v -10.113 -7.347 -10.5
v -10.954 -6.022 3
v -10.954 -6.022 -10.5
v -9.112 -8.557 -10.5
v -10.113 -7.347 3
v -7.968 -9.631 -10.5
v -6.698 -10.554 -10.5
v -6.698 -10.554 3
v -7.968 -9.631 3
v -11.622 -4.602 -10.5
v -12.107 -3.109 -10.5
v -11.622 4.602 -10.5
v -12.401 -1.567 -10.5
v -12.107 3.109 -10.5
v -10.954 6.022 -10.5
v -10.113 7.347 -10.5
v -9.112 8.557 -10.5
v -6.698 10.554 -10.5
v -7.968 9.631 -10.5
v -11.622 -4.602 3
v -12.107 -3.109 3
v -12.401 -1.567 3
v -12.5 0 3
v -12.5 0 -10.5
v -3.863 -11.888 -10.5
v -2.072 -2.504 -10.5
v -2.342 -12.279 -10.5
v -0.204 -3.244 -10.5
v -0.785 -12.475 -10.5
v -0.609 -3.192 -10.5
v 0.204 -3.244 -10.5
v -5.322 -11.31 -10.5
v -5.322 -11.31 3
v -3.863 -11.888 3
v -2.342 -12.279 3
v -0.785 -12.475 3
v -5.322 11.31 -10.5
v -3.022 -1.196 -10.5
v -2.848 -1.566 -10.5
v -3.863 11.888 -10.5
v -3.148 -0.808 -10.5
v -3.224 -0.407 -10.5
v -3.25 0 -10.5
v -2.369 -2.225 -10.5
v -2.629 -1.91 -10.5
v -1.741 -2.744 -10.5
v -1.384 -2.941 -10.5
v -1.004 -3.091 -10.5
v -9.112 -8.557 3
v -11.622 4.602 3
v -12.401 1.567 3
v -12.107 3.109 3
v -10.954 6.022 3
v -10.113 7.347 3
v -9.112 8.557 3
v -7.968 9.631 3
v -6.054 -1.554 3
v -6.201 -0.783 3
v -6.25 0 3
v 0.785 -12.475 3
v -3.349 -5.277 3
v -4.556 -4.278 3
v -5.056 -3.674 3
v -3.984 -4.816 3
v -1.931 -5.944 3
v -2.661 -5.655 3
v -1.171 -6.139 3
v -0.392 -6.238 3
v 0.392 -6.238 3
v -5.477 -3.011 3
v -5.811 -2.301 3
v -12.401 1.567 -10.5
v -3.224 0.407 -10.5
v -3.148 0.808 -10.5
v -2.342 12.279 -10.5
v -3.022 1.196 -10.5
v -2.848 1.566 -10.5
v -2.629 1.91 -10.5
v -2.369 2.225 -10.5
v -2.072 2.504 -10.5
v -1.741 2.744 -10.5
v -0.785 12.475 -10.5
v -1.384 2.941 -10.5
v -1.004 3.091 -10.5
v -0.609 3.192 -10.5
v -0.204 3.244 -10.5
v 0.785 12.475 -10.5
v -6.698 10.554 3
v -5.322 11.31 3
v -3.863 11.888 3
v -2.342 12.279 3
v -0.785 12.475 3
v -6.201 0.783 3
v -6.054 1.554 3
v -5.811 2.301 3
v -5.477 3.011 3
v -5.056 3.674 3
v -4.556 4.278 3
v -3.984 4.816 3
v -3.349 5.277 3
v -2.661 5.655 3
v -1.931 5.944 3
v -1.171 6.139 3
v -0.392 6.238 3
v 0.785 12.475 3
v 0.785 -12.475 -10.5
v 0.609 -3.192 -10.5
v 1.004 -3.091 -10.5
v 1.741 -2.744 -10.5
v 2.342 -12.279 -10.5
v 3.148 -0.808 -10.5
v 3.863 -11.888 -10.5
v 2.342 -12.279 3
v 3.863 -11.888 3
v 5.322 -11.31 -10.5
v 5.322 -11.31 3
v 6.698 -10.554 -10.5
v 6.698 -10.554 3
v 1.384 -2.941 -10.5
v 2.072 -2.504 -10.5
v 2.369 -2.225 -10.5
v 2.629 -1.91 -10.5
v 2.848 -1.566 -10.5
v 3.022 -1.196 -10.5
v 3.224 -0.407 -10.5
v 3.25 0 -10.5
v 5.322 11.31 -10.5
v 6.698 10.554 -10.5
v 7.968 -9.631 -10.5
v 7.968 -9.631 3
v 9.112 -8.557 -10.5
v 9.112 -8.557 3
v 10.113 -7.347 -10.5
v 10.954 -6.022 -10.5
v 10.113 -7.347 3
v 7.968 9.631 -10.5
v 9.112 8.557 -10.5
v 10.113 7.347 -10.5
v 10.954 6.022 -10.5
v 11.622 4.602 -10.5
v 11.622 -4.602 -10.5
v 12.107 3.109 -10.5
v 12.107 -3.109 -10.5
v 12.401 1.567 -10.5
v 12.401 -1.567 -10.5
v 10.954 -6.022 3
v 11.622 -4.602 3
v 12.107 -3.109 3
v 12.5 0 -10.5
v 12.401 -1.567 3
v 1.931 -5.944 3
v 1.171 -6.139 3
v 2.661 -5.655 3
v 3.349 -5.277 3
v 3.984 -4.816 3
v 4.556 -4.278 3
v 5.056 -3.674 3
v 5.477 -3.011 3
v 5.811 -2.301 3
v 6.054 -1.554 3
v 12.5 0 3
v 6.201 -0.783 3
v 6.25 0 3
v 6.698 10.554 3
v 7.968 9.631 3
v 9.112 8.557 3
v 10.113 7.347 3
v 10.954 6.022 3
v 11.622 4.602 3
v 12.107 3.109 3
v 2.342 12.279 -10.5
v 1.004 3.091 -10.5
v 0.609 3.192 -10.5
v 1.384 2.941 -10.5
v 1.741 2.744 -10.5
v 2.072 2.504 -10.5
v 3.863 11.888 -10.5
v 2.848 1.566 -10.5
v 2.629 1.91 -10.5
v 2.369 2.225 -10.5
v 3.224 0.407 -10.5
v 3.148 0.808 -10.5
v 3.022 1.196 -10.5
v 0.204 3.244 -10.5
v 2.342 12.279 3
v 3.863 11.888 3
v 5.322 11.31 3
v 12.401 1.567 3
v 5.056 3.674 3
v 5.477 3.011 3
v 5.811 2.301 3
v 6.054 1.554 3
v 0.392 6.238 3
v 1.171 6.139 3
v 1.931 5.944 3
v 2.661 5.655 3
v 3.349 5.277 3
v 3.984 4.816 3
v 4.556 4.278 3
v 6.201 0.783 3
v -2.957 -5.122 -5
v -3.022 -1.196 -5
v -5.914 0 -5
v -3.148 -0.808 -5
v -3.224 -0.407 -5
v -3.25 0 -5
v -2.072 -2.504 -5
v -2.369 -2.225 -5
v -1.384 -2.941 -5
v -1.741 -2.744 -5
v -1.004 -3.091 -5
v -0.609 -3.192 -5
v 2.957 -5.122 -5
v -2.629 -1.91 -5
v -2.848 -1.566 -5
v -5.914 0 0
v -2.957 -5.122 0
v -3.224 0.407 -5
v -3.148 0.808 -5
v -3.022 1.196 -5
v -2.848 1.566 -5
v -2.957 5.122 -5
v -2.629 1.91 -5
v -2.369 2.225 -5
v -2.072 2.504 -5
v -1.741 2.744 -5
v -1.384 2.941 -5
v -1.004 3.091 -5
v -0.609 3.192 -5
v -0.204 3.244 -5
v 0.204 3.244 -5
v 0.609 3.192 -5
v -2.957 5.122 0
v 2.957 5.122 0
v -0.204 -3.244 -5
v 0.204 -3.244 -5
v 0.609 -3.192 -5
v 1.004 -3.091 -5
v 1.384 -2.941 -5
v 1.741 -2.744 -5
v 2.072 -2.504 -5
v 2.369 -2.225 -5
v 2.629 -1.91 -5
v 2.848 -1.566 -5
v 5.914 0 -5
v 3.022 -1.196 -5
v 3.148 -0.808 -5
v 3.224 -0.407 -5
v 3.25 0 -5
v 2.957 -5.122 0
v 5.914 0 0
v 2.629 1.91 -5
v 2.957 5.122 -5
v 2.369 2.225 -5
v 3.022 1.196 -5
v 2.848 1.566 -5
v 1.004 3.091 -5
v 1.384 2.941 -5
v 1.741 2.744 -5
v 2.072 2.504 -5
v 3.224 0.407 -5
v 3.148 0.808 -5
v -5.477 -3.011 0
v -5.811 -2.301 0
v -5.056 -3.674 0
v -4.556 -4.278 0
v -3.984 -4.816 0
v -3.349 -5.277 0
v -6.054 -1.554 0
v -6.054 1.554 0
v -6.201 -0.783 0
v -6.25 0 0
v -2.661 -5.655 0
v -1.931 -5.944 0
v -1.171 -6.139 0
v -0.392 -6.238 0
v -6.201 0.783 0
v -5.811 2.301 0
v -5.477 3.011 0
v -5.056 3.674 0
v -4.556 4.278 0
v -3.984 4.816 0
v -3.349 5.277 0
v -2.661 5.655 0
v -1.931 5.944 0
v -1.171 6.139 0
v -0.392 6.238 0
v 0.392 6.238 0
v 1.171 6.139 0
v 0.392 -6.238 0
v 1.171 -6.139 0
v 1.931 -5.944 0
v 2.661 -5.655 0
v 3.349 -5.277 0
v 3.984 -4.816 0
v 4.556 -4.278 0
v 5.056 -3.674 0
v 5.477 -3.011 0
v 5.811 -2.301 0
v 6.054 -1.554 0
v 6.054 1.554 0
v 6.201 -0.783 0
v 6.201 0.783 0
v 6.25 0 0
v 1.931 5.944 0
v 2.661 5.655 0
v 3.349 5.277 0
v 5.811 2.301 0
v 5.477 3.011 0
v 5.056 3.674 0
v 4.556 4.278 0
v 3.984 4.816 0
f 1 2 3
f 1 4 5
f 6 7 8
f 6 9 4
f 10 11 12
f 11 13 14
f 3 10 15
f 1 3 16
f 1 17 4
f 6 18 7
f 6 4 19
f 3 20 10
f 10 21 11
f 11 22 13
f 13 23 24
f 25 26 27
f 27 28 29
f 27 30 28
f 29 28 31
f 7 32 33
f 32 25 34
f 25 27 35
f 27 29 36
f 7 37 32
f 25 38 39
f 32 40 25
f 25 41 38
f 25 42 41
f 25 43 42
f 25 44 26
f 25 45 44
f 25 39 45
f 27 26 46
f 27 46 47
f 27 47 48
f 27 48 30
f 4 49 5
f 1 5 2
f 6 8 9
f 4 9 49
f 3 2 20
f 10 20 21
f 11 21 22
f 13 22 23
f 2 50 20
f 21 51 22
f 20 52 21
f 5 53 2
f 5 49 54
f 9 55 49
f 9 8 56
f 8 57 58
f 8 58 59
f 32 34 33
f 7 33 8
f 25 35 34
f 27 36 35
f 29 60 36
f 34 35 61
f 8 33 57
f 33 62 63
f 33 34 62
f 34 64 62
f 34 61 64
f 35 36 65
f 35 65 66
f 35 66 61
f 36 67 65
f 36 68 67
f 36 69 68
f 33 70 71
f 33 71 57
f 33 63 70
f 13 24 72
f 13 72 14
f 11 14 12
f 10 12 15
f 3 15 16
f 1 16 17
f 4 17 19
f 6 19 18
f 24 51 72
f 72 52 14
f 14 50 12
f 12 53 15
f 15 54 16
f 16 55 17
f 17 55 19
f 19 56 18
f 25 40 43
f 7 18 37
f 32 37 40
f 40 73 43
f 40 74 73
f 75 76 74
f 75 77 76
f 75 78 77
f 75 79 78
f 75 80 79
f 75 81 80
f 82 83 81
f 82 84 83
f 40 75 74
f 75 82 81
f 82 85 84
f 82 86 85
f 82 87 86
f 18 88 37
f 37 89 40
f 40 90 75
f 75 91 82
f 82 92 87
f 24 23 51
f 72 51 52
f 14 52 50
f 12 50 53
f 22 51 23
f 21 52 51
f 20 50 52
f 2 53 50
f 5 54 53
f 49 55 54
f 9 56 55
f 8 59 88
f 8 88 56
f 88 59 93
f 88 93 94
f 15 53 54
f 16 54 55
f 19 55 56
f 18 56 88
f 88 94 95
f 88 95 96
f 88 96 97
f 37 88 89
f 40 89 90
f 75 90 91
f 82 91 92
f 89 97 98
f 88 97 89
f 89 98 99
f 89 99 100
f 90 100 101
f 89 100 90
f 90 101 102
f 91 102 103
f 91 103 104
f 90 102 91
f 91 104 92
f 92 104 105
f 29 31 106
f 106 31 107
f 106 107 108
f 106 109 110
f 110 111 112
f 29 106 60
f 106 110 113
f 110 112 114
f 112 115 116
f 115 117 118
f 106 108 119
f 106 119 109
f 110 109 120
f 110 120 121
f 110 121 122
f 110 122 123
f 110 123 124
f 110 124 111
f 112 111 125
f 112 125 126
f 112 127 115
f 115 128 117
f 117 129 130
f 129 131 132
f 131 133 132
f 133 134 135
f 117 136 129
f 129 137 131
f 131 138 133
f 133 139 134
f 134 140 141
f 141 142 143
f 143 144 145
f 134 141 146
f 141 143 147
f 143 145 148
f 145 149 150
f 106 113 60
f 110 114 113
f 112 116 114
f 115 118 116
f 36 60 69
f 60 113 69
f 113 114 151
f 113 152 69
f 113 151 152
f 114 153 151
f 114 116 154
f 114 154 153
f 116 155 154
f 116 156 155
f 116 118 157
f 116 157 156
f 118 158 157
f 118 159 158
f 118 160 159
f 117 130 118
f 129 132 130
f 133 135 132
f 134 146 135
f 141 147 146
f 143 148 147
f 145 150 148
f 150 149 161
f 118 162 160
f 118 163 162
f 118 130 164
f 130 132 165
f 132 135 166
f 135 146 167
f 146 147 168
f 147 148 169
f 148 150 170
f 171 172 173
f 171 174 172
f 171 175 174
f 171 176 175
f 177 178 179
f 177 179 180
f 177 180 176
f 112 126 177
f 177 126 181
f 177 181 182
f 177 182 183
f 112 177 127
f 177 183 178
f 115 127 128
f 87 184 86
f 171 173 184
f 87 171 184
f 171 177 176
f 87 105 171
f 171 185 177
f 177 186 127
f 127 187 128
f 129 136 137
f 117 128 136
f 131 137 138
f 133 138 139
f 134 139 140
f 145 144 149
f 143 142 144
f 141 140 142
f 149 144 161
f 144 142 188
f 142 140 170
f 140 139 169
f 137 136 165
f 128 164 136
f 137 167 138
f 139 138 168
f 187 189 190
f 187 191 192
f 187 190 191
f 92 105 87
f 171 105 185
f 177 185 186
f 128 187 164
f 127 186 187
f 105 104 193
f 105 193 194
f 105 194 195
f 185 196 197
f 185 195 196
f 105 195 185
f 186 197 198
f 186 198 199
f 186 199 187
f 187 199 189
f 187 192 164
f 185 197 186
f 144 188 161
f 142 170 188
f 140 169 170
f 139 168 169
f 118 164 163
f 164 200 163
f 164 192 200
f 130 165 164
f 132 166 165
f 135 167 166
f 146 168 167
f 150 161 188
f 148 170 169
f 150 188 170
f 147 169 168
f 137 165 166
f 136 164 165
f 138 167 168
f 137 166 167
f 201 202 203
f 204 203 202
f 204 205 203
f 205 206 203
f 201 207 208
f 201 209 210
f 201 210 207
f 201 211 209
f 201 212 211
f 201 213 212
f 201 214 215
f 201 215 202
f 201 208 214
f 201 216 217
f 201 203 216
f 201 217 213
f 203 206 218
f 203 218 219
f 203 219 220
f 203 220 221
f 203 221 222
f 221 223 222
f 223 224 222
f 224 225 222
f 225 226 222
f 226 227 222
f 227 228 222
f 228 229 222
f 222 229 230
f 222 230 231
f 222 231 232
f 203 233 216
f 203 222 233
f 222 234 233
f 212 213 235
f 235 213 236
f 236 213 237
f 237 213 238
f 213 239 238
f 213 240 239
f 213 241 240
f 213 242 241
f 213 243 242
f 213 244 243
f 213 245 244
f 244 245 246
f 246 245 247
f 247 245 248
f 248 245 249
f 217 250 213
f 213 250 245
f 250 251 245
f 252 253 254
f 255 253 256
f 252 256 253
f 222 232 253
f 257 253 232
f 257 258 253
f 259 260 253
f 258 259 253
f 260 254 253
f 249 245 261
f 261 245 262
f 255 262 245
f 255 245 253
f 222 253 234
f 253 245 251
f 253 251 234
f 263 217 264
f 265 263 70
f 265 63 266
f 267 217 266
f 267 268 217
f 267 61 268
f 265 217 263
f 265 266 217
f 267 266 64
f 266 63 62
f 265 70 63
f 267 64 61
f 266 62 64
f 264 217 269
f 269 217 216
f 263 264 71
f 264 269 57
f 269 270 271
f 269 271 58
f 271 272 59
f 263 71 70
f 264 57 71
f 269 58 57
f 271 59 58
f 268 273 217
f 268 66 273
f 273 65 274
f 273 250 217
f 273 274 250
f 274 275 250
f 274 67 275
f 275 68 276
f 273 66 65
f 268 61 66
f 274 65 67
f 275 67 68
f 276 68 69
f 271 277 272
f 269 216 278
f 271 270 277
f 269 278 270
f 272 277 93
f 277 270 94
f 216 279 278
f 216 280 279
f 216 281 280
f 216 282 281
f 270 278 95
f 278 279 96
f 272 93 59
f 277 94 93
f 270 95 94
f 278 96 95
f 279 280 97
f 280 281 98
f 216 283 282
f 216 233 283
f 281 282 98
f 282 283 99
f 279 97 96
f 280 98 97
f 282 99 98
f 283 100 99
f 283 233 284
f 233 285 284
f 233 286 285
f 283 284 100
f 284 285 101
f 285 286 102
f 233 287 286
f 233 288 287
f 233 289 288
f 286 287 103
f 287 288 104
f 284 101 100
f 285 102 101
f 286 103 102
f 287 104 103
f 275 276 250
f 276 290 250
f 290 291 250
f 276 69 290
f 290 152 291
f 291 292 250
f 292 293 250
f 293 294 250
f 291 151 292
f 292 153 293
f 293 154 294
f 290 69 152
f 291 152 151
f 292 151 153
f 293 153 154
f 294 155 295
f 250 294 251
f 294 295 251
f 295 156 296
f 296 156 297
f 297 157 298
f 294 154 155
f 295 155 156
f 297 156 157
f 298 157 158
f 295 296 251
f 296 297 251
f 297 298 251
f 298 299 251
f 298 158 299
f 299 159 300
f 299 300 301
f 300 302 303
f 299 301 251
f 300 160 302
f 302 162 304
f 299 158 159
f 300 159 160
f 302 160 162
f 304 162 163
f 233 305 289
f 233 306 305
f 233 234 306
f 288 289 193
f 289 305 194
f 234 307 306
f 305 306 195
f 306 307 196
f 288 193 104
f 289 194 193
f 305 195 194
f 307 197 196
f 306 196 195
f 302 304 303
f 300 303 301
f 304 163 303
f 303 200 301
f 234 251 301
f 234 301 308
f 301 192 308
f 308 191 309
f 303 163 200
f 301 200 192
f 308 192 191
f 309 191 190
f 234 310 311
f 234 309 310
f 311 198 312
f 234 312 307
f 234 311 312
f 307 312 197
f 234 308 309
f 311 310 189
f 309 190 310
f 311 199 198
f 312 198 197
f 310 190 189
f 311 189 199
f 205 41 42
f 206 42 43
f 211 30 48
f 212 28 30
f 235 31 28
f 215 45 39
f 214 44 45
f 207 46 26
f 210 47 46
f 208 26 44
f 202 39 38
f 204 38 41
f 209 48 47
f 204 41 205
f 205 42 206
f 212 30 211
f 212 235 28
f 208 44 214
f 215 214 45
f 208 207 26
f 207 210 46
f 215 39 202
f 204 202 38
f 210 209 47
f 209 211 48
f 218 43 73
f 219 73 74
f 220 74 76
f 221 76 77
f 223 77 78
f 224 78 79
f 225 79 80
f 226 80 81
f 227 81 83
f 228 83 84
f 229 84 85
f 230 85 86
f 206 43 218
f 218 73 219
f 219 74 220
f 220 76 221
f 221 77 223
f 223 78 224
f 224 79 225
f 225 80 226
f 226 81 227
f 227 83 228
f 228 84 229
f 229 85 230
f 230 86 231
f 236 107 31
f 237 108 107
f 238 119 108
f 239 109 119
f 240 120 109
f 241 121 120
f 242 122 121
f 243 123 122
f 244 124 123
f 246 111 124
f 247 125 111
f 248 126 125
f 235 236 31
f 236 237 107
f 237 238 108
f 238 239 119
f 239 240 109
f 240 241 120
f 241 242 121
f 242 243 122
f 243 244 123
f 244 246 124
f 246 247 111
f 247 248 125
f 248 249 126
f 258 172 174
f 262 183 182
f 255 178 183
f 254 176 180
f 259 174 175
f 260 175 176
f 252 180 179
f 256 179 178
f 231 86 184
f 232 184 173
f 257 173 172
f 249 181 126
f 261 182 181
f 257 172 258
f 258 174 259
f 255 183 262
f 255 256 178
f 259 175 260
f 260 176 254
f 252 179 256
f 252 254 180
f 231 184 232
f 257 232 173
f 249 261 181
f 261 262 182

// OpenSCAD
$fn = 50;


difference() {
	union() {
		translate(v = [0, 0, -10.5000000000]) {
			cylinder(h = 13.5000000000, r = 12.5000000000);
		}
		#translate(v = [0, 0, -12.0000000000]) {
			cylinder(h = 12, r = 2.8750000000);
		}
	}
	union() {
		translate(v = [0, 0, 0]) {
			rotate(a = [0, 0, 0]) {
				difference() {
					union() {
						translate(v = [0, 0, -5]) {
							linear_extrude(height = 5) {
								polygon(points = [[5.9142500000, 0.0000000000], [2.9571250000, 5.1218907443], [-2.9571250000, 5.1218907443], [-5.9142500000, 0.0000000000], [-2.9571250000, -5.1218907443], [2.9571250000, -5.1218907443]]);
							}
						}
					}
					union();
				}
			}
		}
		#cylinder(h = 3, r = 6.2500000000);
		#translate(v = [0, 0, -100.0000000000]) {
			cylinder(h = 200, r = 3.2500000000);
		}
	}
}
